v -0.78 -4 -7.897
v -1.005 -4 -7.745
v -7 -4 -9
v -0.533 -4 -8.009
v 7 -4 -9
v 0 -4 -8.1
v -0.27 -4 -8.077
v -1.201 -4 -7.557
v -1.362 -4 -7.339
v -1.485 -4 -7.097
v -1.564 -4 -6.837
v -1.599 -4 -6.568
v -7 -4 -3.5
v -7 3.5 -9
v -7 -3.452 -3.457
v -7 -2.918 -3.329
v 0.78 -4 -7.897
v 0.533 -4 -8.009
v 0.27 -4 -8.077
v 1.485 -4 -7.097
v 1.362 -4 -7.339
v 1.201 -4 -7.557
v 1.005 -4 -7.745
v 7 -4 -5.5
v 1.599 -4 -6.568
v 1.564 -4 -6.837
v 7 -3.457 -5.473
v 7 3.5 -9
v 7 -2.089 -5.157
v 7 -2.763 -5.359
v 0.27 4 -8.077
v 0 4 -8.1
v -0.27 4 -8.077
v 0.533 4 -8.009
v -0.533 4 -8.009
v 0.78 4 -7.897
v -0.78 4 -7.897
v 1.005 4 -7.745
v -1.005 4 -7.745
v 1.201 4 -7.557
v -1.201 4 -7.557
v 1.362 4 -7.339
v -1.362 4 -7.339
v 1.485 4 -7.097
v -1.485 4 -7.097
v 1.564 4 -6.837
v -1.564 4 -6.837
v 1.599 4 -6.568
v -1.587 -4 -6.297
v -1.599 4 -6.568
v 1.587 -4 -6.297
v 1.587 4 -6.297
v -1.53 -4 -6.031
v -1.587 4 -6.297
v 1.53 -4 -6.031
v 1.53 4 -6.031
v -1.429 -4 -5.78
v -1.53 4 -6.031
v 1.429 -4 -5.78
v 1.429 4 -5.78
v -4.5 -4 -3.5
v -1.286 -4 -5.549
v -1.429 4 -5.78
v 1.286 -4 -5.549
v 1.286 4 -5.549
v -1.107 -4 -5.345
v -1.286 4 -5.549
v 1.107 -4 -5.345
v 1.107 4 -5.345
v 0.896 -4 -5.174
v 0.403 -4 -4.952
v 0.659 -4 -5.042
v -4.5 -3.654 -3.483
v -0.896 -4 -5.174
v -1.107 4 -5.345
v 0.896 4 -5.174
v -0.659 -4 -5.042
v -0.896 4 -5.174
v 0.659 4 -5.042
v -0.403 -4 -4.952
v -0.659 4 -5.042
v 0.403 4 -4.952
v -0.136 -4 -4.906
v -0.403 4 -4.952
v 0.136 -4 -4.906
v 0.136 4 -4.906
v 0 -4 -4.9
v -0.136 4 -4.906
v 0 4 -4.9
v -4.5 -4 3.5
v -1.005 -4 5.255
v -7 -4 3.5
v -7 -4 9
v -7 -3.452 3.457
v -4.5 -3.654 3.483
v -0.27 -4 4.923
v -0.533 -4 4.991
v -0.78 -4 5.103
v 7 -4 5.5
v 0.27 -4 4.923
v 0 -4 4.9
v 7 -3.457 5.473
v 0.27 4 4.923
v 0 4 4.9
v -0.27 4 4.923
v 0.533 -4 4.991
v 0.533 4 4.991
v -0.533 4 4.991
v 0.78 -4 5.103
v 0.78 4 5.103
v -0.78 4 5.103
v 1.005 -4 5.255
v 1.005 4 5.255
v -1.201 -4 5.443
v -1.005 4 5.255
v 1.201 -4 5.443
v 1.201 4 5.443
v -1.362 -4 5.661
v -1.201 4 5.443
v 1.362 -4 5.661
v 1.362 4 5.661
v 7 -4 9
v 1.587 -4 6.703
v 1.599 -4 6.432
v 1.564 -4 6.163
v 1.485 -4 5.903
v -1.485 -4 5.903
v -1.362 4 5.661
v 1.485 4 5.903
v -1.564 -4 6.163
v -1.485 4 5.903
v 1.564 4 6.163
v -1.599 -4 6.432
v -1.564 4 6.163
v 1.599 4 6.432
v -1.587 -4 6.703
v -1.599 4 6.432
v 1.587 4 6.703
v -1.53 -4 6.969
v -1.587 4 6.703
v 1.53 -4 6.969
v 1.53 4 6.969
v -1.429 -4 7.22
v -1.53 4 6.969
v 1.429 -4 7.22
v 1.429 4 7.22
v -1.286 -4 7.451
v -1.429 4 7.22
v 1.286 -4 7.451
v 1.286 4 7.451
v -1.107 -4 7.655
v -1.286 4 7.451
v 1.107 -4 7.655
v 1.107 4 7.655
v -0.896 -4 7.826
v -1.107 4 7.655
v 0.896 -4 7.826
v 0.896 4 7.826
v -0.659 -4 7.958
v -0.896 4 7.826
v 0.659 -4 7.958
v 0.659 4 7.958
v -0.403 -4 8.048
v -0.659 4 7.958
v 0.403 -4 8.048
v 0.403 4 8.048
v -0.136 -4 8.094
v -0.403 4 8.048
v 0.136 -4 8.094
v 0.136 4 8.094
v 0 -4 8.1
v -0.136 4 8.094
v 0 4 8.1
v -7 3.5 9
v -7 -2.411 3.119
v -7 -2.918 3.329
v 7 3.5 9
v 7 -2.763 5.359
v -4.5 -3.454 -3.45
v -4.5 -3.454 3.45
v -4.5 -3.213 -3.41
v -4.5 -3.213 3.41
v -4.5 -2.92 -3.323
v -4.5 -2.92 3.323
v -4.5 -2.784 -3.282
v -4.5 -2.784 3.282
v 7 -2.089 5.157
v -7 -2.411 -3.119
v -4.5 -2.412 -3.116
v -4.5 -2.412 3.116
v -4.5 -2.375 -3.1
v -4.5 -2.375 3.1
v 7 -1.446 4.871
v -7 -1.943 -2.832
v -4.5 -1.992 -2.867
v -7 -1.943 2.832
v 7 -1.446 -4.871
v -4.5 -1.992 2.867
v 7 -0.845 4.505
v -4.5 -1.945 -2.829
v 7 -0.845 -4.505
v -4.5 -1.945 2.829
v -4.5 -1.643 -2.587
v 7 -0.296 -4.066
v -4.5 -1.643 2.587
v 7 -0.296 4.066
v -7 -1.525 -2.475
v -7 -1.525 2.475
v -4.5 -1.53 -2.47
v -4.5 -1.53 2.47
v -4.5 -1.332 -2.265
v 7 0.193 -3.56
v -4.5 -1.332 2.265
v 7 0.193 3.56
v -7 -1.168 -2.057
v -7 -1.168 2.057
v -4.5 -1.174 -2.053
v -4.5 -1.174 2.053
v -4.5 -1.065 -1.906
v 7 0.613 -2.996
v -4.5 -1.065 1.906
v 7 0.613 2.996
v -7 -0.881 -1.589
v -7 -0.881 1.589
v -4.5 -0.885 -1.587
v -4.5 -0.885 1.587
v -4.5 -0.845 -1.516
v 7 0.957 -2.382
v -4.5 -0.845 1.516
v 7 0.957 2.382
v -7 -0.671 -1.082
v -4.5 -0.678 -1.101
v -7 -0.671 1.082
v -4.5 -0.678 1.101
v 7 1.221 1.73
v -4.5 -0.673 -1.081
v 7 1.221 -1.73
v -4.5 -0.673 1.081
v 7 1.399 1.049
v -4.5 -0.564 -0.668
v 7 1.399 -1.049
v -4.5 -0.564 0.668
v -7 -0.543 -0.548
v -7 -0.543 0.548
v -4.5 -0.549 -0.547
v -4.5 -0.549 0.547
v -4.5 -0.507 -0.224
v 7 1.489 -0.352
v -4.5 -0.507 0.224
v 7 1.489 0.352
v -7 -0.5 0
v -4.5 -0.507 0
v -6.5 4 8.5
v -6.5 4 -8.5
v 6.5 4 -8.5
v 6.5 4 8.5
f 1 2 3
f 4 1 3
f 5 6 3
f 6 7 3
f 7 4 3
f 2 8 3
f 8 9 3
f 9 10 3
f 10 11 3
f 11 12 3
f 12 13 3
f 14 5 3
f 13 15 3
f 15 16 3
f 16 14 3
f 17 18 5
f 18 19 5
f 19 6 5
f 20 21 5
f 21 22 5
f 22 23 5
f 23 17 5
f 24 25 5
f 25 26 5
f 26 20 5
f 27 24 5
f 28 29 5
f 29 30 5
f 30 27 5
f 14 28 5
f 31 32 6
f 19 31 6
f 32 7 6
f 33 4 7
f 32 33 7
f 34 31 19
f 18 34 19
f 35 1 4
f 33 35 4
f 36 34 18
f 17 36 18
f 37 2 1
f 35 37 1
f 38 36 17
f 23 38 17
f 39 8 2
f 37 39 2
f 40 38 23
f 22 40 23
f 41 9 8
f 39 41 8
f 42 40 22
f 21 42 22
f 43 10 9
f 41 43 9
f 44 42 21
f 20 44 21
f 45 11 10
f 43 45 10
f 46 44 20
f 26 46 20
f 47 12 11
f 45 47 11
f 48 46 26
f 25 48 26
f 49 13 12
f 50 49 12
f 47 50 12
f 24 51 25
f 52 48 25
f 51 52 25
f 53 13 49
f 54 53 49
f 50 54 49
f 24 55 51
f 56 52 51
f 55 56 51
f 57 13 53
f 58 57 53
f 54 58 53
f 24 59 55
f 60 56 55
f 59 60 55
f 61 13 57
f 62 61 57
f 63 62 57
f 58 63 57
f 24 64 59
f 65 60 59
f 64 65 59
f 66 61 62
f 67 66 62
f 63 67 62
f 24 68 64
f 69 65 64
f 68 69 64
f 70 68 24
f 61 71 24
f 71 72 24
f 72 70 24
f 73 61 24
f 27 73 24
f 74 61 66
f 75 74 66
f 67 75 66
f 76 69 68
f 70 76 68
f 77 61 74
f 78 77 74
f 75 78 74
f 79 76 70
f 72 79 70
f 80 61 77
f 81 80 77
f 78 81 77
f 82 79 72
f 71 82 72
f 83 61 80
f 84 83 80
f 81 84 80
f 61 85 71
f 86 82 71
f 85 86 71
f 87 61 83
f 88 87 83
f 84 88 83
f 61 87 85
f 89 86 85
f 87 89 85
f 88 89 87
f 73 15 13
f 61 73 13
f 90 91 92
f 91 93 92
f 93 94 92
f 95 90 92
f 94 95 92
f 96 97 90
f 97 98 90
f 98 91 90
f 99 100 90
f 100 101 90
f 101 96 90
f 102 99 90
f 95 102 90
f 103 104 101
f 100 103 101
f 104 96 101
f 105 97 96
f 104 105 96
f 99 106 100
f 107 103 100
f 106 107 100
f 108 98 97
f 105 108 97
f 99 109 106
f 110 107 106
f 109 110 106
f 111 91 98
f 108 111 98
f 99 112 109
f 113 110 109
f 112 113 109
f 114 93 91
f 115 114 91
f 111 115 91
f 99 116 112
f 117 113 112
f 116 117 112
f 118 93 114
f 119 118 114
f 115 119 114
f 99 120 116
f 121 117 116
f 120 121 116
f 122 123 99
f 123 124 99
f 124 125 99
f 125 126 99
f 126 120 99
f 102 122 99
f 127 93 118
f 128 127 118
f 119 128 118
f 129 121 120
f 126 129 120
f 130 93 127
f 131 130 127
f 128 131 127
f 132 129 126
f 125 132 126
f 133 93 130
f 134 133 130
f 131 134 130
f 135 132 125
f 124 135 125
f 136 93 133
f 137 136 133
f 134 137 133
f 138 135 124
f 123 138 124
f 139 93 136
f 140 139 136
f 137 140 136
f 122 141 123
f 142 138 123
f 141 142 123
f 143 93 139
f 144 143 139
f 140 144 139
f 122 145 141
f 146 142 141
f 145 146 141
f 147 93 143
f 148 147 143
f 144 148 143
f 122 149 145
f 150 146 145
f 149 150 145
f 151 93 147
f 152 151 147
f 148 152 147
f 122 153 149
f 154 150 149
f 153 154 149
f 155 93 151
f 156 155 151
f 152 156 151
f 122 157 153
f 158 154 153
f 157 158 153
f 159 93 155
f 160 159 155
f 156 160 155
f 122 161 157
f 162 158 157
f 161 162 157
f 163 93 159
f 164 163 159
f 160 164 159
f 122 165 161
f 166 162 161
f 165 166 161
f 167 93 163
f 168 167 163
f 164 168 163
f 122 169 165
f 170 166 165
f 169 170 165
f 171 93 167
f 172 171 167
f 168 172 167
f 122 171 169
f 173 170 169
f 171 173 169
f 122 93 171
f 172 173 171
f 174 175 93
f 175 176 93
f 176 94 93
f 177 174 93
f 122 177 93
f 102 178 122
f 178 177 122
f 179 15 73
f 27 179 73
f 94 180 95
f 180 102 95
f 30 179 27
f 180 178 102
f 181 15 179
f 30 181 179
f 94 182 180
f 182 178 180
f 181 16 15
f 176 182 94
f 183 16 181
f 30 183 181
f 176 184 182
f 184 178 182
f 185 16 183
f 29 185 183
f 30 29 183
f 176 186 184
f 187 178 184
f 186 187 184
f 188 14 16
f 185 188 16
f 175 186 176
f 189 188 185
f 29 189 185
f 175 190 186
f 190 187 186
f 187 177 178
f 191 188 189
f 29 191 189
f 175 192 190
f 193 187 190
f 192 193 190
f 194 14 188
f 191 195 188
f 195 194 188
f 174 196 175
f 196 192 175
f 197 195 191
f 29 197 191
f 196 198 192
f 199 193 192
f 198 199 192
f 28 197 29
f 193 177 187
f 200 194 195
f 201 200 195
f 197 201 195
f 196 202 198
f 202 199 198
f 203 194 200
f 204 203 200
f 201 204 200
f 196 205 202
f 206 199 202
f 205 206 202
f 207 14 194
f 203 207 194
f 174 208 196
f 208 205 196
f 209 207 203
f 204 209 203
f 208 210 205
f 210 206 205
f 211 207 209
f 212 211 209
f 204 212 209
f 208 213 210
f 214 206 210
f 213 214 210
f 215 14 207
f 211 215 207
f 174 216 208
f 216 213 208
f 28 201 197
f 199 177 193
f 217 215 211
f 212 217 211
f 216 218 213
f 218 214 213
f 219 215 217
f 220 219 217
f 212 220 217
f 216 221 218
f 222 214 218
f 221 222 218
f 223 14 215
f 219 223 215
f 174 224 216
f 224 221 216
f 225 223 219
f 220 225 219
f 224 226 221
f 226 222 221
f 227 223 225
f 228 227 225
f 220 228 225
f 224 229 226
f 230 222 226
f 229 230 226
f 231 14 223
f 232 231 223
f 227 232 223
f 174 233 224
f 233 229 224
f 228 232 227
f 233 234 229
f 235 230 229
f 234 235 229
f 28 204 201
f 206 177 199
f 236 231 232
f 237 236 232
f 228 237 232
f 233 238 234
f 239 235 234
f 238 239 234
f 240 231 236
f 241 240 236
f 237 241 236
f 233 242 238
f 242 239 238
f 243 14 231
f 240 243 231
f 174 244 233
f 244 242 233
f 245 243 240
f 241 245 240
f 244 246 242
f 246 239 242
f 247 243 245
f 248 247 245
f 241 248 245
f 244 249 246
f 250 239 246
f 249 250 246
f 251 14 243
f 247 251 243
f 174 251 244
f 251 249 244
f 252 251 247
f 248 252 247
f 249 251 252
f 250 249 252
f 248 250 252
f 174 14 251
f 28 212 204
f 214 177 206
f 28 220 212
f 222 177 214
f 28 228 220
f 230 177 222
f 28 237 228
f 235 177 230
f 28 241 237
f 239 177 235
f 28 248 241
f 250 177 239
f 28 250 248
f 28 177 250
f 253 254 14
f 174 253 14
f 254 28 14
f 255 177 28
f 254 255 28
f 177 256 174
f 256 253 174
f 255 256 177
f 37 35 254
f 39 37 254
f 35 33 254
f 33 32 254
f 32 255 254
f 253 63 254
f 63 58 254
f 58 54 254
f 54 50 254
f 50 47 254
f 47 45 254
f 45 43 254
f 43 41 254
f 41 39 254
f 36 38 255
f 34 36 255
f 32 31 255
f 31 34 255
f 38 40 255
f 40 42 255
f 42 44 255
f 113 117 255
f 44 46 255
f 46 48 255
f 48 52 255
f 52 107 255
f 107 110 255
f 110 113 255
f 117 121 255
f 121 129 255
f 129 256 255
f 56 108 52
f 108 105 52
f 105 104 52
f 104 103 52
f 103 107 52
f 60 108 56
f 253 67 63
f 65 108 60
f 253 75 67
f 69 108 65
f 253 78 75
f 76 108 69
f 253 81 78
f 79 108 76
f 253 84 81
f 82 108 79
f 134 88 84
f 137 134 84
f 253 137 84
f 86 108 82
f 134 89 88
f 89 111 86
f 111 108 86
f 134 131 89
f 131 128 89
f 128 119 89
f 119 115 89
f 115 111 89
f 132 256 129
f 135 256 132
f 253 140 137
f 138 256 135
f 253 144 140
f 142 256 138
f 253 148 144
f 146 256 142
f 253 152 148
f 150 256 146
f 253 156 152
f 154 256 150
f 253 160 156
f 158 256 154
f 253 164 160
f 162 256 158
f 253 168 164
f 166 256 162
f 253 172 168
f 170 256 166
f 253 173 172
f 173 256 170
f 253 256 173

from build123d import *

# Parameters (mm, degrees)
SKETCH_1_W          = 14
SKETCH_1_H          = 18
SKETCH_1_R          = 1.6
EXTRUDE_1_DEPTH     = 4
SKETCH_2_R          = 3.5
CUT_EXTRUDE_1_DEPTH = 2.5
SKETCH_4_R          = 5.5
SKETCH_3_R          = 3.5
CHAMFER_1_SIZE      = 0.5


with BuildPart() as part:
    # 草圖1 → 填料-伸長1 (new body, symmetric)
    with BuildSketch(Plane(origin=(0, 0, 0), x_dir=(1, 0, 0), z_dir=(0, 1, 0))):
        Rectangle(SKETCH_1_W, SKETCH_1_H)
        with Locations((0, 6.5)):
            Circle(SKETCH_1_R, mode=Mode.SUBTRACT)
        with Locations((0, -6.5)):
            Circle(SKETCH_1_R, mode=Mode.SUBTRACT)
    extrude(amount=EXTRUDE_1_DEPTH, both=True)

    # 草圖2 → 除料-伸長1 (cut)
    with BuildSketch(Plane.ZY.offset(7)):
        with Locations((0, -4)):
            Circle(SKETCH_2_R)
    extrude(amount=-CUT_EXTRUDE_1_DEPTH, mode=Mode.SUBTRACT)

    # 草圖4 → 除料-疊層拉伸1 section 0
    with BuildSketch(Plane(origin=(7, 0, 0), x_dir=(0, 0, -1), z_dir=(1, 0, 0))):
        with Locations((0, -4)):
            Circle(SKETCH_4_R)
    # 草圖3 → 除料-疊層拉伸1 section 1
    with BuildSketch(Plane.ZY.offset(4.5)):
        with Locations((0, -4)):
            Circle(SKETCH_3_R)
    loft(mode=Mode.SUBTRACT)

    # 導角1
    chamfer_1_edges = [part.edges().sort_by_distance(p)[0] for p in [
        (-7, 4, 0),
        (0, 4, 9),
        (7, 4, 0),
        (0, 4, -9),
    ]]
    chamfer(chamfer_1_edges, length=CHAMFER_1_SIZE)


solid = part.part
